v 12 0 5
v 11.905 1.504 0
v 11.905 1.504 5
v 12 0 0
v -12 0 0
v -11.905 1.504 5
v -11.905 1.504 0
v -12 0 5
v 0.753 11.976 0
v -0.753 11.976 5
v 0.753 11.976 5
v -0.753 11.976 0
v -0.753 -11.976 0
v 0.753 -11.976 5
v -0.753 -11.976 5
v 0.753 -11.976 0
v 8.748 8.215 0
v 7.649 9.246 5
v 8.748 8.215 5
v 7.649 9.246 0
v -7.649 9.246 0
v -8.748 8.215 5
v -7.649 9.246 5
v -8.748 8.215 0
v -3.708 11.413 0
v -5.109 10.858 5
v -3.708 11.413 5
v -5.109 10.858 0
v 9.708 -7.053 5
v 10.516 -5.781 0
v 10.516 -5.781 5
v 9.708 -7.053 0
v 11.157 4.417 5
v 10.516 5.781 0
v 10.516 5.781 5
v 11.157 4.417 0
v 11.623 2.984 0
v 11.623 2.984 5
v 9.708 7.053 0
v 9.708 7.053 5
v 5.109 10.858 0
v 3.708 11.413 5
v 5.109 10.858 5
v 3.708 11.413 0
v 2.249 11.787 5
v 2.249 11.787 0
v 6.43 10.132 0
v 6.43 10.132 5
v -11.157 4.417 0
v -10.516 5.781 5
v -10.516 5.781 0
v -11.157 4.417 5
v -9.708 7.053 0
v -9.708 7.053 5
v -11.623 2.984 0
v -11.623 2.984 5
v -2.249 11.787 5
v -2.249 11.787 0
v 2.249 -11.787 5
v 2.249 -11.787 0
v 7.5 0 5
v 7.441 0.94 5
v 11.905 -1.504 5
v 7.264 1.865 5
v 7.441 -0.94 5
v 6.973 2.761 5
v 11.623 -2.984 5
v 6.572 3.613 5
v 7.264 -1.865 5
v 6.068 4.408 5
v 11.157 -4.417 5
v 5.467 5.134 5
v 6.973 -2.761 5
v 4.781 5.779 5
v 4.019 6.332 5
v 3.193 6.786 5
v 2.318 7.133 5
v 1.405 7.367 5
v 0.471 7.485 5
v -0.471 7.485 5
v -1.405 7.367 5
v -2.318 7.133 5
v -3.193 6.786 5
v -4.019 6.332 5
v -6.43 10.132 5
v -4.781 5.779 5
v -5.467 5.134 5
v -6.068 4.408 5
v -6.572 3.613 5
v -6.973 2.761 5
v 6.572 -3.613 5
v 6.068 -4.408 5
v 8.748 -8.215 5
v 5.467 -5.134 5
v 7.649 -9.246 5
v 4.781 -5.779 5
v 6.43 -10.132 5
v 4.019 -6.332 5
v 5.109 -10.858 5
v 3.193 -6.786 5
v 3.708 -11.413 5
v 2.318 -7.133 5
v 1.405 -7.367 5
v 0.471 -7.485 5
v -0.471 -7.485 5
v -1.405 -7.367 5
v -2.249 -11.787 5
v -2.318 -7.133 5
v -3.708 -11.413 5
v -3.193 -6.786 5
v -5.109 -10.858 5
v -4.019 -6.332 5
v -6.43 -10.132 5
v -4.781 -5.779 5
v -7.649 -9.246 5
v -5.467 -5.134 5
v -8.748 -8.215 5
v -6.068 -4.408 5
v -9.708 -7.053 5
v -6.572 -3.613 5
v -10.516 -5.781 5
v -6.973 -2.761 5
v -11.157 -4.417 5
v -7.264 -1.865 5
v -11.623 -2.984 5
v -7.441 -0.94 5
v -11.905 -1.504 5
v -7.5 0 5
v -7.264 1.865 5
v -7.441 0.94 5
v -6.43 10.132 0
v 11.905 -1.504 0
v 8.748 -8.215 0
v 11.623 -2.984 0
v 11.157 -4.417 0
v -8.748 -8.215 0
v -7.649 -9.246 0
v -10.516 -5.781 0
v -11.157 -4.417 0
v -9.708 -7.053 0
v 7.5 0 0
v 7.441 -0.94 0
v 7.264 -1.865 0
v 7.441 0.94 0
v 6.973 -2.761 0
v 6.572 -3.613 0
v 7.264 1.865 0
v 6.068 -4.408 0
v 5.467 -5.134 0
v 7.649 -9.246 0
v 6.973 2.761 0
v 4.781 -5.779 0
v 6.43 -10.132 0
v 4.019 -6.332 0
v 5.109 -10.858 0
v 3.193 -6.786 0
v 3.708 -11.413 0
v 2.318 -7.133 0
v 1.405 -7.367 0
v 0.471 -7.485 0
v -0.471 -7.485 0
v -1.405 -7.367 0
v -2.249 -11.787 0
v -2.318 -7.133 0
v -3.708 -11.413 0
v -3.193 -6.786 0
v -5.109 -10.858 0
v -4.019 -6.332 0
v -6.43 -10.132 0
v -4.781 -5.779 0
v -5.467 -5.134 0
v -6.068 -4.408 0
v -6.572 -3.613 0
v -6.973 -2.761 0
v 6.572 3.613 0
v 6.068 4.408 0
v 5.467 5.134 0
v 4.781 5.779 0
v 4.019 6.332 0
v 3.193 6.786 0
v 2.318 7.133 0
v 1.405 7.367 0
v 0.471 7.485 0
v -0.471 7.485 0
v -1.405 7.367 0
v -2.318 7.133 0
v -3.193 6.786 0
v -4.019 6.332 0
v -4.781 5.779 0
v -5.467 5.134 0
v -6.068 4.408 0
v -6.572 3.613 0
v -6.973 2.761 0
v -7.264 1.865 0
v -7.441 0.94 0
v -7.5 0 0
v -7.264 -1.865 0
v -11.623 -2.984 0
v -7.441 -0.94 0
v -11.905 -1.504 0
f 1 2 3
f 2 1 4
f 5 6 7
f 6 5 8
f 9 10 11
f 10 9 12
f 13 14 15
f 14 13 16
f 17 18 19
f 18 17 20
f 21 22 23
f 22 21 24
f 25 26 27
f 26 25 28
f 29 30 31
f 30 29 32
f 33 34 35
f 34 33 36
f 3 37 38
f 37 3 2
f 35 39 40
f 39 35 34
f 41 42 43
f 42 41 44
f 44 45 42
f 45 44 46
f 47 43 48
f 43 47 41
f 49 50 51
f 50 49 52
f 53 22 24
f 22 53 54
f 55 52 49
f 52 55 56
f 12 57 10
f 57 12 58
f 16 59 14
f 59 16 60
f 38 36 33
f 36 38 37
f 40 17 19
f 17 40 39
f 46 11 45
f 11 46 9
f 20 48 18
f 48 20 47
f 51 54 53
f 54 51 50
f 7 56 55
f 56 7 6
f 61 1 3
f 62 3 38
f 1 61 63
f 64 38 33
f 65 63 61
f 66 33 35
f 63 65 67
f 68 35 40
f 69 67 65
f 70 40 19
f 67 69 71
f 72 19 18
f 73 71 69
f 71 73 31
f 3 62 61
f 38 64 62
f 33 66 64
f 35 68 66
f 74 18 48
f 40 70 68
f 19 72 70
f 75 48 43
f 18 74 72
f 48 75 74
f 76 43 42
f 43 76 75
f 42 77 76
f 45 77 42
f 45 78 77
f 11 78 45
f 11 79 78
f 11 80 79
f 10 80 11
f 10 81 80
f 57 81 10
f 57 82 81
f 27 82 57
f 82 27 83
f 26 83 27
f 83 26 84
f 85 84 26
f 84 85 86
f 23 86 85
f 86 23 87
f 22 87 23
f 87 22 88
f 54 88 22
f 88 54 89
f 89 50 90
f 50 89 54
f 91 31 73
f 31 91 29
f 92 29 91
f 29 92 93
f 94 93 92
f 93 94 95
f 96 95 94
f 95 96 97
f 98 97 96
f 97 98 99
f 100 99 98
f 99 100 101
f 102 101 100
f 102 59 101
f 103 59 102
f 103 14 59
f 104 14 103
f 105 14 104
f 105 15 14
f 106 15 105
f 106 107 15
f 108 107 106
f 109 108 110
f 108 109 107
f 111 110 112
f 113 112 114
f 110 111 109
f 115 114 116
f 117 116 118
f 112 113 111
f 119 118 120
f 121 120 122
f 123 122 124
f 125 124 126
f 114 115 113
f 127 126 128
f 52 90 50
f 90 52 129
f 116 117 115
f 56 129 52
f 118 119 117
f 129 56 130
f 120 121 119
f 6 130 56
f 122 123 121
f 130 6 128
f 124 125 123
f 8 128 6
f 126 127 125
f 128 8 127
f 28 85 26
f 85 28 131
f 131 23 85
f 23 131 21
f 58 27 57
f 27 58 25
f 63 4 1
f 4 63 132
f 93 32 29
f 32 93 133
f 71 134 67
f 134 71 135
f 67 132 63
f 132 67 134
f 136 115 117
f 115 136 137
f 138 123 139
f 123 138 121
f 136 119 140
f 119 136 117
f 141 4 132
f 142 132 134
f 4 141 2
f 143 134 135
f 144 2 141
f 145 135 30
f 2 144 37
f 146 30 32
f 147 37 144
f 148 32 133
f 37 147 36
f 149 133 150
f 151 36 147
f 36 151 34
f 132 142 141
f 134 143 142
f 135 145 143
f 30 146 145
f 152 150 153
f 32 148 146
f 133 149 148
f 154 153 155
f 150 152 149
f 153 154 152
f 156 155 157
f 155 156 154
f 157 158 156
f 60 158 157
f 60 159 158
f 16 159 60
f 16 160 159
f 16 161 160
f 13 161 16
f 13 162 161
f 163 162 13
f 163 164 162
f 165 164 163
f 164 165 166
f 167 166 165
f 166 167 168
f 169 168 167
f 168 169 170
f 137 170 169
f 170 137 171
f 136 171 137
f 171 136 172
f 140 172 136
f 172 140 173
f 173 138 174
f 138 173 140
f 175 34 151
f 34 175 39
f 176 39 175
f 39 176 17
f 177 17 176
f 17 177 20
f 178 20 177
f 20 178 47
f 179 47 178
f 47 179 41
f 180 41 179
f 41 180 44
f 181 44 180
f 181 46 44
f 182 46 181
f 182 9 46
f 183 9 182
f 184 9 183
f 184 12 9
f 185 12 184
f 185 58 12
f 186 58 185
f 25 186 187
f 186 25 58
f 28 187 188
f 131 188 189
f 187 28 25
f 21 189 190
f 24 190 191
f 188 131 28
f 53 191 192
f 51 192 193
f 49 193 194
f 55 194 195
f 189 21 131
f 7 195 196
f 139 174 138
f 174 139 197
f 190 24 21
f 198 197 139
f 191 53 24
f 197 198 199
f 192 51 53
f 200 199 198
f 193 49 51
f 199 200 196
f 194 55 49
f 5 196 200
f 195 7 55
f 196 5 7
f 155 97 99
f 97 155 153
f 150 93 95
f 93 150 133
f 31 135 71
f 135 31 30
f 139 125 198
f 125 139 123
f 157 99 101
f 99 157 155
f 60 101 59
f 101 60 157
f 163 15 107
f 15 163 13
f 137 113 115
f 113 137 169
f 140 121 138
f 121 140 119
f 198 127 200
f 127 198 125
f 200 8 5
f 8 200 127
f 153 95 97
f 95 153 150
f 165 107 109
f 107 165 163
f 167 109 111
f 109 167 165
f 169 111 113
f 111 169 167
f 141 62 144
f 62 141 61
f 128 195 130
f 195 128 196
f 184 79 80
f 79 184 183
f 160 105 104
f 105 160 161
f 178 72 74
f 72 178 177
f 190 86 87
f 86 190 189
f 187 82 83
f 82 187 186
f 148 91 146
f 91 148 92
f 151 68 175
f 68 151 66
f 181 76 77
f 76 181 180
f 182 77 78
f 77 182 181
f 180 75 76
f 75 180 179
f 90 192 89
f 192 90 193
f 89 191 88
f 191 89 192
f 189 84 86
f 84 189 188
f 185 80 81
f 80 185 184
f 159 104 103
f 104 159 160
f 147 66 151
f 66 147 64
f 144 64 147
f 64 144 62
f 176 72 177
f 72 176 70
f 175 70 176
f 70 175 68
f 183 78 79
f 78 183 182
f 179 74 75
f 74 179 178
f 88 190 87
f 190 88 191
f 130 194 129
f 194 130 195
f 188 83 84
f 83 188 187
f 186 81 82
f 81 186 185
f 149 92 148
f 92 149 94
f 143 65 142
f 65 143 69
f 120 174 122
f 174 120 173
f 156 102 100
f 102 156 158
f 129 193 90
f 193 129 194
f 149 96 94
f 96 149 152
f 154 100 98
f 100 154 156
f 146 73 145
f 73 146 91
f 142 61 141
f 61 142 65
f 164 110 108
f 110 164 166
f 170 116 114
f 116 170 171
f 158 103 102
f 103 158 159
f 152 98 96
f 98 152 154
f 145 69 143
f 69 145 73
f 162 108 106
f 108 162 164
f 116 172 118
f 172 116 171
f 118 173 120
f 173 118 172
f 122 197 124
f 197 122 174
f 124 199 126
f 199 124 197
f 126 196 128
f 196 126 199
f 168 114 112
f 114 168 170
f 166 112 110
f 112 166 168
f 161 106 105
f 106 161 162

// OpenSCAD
$fn = 50;


difference() {
	union() {
		cylinder(h = 5, r = 12.0000000000);
	}
	union() {
		cylinder(h = 5, r = 7.5000000000);
	}
}
